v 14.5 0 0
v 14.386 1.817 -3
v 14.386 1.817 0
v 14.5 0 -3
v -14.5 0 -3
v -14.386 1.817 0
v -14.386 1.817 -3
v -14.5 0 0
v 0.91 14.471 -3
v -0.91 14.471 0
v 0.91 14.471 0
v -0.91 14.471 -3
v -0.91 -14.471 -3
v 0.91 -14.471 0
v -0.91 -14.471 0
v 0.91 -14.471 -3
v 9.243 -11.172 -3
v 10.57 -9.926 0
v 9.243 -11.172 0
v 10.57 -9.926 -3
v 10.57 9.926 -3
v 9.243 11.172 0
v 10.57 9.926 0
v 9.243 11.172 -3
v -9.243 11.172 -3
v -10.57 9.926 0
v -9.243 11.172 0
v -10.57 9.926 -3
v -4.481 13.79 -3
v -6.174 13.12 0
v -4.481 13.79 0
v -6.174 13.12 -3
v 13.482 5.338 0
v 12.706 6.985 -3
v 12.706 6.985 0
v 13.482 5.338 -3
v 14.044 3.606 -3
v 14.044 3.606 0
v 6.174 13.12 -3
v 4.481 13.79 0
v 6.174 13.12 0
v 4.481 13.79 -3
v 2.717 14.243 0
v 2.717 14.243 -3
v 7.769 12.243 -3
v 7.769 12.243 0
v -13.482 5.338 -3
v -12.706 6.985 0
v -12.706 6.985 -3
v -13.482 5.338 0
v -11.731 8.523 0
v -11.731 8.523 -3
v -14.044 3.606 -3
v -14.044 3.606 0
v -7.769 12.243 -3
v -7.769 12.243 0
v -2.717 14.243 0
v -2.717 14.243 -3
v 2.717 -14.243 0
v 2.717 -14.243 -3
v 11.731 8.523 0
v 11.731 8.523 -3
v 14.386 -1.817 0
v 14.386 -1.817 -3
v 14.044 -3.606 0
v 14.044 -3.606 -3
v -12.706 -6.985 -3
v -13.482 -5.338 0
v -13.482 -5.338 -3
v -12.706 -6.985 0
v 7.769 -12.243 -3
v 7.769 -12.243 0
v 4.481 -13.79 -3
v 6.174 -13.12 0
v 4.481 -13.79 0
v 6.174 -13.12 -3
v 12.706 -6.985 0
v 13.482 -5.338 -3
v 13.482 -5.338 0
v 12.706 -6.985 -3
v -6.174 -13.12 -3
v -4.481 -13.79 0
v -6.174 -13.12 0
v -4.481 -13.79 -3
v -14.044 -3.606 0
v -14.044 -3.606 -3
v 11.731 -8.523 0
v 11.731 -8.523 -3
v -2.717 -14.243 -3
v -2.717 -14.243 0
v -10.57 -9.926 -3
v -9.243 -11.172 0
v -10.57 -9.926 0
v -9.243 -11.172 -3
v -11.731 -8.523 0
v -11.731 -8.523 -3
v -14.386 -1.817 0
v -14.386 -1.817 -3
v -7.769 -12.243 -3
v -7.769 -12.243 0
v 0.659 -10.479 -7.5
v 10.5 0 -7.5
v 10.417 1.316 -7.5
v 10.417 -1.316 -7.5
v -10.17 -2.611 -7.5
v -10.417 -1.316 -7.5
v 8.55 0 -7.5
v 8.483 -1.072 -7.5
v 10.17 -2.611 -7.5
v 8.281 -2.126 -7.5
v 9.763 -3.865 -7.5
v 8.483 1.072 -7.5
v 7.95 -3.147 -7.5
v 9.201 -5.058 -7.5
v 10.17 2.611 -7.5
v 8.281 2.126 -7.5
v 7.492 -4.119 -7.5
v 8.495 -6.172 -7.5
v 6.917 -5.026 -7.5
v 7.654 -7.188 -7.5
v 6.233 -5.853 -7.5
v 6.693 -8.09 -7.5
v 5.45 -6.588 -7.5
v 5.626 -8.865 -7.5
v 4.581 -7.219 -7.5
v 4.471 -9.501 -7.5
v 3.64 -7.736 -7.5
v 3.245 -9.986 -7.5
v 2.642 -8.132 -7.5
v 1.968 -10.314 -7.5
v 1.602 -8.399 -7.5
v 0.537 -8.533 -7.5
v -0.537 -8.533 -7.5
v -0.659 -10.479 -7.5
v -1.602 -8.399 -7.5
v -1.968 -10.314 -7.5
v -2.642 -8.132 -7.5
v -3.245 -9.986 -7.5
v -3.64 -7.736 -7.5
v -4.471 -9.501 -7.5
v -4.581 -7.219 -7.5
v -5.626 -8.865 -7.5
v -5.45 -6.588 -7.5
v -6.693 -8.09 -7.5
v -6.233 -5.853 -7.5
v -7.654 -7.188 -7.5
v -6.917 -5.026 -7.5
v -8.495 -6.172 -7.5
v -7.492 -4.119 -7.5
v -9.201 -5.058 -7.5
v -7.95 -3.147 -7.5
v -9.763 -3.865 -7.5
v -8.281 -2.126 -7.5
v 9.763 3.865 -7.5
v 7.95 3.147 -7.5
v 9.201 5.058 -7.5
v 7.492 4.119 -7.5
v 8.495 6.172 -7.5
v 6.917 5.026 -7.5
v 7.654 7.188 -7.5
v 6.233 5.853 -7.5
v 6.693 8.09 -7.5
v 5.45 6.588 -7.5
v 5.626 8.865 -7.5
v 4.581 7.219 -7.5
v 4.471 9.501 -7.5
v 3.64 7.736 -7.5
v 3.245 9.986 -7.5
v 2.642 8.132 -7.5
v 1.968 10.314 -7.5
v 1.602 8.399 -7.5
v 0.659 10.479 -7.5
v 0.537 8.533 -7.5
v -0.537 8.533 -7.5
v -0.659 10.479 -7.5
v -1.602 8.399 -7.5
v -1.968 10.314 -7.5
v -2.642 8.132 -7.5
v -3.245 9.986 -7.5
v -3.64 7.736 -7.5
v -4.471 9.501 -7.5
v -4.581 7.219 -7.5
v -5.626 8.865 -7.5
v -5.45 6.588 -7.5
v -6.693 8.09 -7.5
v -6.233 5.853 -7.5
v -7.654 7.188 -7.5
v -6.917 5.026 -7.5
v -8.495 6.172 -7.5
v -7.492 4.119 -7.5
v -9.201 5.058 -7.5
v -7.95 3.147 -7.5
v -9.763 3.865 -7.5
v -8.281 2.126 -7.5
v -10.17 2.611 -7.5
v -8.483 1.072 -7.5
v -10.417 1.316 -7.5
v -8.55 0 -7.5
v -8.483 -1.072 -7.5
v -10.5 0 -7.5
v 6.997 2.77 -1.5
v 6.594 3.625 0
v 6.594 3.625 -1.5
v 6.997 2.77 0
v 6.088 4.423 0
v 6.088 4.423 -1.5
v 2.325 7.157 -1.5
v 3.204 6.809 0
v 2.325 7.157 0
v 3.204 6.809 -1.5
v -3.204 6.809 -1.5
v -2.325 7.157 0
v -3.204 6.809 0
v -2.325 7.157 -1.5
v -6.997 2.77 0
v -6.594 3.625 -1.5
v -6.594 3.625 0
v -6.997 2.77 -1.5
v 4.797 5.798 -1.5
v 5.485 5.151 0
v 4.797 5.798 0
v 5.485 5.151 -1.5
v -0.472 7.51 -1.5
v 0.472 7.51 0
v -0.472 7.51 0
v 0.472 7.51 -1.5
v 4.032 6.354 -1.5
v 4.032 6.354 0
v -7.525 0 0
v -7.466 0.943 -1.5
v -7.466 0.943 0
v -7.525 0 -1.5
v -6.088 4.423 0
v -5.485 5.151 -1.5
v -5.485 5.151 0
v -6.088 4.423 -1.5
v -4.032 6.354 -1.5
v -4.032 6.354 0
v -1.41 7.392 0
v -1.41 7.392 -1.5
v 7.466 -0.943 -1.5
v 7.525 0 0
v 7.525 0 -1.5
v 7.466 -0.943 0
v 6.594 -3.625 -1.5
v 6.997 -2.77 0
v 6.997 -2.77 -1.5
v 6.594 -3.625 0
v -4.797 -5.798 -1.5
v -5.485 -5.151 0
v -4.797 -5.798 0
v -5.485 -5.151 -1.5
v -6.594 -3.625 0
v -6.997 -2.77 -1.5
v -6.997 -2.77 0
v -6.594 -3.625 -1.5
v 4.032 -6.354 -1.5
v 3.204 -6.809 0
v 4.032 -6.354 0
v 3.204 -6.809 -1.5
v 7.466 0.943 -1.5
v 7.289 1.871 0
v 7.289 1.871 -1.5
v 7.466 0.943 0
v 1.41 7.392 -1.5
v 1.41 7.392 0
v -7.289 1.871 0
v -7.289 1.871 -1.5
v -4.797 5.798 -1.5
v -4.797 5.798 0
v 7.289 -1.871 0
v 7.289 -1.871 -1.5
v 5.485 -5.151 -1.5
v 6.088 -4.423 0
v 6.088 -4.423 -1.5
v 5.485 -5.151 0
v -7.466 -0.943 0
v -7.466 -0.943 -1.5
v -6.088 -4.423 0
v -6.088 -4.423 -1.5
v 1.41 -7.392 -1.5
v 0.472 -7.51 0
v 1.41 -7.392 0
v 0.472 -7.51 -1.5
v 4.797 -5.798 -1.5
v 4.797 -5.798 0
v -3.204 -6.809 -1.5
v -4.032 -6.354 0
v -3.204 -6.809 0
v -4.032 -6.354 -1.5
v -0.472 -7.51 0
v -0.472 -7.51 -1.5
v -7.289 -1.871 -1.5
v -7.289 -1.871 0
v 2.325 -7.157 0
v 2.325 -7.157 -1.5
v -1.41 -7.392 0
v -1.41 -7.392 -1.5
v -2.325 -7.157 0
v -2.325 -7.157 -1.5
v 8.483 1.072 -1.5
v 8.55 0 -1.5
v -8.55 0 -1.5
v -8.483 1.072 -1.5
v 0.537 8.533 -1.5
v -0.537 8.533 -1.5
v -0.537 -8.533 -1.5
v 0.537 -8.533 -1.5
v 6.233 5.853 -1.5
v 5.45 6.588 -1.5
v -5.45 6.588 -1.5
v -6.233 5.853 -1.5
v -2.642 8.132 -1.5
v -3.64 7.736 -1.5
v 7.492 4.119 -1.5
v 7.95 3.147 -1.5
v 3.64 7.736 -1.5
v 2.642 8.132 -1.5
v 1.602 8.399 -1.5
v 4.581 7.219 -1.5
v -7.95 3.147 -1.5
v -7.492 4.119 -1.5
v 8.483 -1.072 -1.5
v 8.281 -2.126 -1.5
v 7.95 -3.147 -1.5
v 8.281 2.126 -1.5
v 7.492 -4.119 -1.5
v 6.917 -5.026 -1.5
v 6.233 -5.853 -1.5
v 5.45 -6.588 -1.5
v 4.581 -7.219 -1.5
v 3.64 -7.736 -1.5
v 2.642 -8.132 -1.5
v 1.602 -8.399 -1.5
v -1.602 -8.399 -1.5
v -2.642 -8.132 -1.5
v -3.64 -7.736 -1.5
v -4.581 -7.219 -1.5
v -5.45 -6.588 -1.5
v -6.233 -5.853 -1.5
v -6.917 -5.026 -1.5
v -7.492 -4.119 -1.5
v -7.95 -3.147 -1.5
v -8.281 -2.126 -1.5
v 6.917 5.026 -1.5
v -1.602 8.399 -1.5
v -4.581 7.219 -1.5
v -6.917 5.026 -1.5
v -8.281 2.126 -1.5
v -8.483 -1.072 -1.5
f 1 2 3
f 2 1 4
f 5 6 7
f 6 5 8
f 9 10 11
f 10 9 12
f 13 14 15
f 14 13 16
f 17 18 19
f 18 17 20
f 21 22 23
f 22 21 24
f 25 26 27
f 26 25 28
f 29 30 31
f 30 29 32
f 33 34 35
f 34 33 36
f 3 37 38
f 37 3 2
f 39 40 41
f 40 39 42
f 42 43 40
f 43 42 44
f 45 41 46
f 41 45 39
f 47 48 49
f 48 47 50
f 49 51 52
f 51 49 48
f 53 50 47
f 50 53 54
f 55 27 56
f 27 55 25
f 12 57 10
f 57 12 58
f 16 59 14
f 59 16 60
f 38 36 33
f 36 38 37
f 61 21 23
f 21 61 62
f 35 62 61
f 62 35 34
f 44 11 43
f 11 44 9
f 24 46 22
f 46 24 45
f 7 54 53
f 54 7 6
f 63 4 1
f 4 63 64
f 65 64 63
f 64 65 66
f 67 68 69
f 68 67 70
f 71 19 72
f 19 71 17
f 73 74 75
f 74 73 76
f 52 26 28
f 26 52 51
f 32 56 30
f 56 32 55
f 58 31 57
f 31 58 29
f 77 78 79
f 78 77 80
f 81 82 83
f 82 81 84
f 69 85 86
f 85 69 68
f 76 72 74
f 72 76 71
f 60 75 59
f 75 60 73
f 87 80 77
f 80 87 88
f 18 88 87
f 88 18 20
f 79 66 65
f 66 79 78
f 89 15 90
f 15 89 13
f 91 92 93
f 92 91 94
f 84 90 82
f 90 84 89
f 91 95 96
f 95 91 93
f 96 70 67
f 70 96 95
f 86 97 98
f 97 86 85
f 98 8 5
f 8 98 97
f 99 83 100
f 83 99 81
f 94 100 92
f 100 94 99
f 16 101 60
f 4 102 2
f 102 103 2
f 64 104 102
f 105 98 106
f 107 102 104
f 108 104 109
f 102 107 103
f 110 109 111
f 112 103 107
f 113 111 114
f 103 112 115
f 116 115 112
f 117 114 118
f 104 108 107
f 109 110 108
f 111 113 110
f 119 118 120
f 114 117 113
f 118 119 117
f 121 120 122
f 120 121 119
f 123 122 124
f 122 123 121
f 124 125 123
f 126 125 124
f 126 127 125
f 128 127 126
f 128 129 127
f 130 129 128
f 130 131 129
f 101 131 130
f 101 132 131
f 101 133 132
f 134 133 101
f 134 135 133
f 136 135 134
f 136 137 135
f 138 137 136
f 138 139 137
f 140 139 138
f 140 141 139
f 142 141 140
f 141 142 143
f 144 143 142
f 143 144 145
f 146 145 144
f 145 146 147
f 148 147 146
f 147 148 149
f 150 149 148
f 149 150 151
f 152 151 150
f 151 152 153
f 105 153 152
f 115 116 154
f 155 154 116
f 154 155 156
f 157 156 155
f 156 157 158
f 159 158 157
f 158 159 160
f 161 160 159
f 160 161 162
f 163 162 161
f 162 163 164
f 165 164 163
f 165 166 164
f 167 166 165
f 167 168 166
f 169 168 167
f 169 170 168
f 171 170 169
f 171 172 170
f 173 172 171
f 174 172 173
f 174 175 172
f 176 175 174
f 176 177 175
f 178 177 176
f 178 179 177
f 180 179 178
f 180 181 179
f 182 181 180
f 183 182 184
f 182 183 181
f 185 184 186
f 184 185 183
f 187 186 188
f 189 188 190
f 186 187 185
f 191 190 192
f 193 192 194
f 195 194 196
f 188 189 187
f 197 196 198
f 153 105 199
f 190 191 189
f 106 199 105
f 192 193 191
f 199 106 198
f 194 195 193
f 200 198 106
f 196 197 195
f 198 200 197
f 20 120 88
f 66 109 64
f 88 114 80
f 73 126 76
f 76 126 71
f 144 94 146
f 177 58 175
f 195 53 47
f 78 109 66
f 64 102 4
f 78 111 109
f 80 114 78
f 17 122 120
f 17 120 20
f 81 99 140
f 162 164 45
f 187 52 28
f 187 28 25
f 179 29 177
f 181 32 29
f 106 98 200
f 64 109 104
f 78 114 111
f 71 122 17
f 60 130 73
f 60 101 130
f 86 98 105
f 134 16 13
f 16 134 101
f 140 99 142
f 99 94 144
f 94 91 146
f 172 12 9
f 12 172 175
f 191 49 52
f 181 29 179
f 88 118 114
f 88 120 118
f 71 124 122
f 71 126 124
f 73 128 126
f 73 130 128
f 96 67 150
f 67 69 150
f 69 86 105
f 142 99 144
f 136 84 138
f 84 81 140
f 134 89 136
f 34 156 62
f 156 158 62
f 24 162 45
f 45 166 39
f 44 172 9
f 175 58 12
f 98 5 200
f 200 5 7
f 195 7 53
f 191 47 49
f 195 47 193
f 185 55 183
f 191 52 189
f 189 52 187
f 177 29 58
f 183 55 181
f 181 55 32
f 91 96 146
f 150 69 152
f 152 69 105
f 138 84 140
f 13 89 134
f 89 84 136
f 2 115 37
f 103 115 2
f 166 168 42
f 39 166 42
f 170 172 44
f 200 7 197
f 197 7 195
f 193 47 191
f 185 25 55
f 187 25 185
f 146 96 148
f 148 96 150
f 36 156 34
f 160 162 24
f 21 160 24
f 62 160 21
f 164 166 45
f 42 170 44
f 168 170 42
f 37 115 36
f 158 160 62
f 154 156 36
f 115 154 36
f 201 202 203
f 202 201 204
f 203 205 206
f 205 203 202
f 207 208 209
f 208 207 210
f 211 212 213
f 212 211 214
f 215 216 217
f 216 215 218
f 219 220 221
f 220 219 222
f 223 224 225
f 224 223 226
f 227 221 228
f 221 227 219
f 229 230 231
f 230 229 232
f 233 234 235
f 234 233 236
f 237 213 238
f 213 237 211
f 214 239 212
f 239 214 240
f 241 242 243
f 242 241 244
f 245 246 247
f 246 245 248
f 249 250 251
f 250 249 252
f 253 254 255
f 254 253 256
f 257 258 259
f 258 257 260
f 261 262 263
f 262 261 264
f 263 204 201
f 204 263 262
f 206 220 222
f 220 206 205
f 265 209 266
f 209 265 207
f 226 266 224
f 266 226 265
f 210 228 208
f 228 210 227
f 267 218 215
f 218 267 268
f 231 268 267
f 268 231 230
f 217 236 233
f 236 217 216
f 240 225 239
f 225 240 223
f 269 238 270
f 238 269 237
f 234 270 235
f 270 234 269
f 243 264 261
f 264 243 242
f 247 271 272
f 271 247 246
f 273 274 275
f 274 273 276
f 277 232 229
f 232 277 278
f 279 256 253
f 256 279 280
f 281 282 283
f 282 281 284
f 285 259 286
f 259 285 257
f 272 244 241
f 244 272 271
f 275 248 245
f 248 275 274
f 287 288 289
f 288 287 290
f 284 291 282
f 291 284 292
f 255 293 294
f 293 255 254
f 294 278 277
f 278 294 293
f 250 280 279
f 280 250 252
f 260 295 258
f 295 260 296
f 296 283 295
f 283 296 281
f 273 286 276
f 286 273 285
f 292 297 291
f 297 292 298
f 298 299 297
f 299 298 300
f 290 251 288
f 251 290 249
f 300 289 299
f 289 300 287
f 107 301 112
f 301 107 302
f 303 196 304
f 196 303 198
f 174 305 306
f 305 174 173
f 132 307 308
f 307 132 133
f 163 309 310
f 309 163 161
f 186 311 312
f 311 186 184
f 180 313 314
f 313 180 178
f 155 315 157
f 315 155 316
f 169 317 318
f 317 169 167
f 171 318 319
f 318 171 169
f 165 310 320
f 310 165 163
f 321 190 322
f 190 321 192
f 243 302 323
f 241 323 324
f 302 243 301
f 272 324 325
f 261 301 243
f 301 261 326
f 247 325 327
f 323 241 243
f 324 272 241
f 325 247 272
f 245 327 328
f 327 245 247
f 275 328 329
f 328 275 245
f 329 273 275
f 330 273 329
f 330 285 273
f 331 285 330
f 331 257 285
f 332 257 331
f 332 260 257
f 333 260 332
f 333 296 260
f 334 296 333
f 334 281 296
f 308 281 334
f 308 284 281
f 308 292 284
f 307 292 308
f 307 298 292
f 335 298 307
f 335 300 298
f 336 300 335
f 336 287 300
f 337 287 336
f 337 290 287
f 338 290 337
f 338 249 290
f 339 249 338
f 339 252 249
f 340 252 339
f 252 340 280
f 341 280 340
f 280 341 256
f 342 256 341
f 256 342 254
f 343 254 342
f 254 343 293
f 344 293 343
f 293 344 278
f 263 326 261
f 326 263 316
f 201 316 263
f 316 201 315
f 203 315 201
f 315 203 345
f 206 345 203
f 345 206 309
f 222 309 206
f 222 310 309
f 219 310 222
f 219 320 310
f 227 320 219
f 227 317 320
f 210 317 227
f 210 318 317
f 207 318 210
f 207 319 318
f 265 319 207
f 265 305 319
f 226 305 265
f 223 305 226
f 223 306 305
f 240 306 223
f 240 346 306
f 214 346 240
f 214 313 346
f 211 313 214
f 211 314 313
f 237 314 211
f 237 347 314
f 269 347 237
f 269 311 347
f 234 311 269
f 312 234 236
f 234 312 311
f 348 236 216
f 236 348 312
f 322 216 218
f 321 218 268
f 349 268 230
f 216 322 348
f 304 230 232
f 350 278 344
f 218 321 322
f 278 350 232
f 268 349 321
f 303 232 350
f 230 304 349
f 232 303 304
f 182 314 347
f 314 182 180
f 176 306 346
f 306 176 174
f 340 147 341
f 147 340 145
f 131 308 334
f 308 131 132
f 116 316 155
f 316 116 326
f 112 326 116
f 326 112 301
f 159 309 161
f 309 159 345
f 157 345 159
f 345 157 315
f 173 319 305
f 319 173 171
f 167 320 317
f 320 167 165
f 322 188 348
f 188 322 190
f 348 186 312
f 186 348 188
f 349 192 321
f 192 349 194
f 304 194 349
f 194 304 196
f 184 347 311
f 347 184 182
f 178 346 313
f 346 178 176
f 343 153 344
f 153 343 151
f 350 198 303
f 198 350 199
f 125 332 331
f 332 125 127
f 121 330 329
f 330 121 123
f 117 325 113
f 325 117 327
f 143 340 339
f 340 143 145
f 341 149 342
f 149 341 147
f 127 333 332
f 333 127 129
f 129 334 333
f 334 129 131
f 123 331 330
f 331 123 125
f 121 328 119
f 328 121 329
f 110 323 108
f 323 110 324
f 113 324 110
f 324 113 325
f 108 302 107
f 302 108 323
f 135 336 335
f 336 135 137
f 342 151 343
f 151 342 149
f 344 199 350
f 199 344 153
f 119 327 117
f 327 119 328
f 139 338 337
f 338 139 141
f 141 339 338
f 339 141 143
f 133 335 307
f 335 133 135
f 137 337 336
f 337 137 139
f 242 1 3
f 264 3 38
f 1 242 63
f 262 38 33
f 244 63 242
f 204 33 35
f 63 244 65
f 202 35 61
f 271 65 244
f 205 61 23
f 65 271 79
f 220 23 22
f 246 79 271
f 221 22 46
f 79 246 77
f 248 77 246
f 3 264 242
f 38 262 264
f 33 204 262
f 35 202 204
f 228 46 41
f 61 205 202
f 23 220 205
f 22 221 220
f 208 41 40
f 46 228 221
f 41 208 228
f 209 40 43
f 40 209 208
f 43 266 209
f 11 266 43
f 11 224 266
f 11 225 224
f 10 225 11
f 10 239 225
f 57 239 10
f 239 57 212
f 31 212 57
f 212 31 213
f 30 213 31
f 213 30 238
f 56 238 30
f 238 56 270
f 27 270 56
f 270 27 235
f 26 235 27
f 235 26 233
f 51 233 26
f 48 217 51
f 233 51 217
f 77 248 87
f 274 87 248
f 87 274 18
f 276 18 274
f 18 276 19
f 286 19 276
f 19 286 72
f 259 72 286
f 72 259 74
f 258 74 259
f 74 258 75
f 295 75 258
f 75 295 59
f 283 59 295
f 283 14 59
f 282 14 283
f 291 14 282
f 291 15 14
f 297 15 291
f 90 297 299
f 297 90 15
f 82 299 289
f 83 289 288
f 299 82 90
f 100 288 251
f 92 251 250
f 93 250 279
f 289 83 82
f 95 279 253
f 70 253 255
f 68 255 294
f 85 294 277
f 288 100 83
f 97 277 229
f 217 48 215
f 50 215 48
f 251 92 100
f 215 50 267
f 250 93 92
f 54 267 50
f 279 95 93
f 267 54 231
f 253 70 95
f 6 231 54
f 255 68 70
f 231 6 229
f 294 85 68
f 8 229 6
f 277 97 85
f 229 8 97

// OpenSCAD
$fn = 50;


difference() {
	union() {
		*color(alpha = 1.0000000000, c = "gray") {
			translate(v = [0, 14, 0]) {
				linear_extrude(height = 1) {
					text(font = "Arial:style=Bold", halign = "center", size = 4.5000000000, text = "COMMENT description oobb_cylinder_shape_positive_type_6_depth_15_thickness_29_diameter_bearing_twenty_twenty_aluminium_extrusion_extra_606_bearing_true_both_holes_0_0_-7.5_pos_plate_14.5_radius", valign = "center");
				}
			}
		}
		translate(v = [0, 0, -3.0000000000]) {
			cylinder(h = 6, r = 14.5000000000);
		}
		*color(alpha = 1.0000000000, c = "gray") {
			translate(v = [0, 14, 5.2500000000]) {
				linear_extrude(height = 1) {
					text(font = "Arial:style=Bold", halign = "center", size = 4.5000000000, text = "COMMENT description oobb_cylinder_shape_positive_type_4.5_depth_0_0_5.25_pos_15_thickness_29_diameter_bearing_twenty_twenty_aluminium_extrusion_extra_606_bearing_true_both_holes_0_0_-7.5_pos_plate_14.5_r1_10.5_r2", valign = "center");
				}
			}
		}
		translate(v = [0, 0, 3.0000000000]) {
			cylinder(h = 4.5000000000, r1 = 14.5000000000, r2 = 10.5000000000);
		}
		*color(alpha = 1.0000000000, c = "gray") {
			translate(v = [0, 14, -5.2500000000]) {
				linear_extrude(height = 1) {
					text(font = "Arial:style=Bold", halign = "center", size = 4.5000000000, text = "COMMENT description oobb_cylinder_shape_positive_type_4.5_depth_0_0_-5.25_pos_15_thickness_29_diameter_bearing_twenty_twenty_aluminium_extrusion_extra_606_bearing_true_both_holes_0_0_-7.5_pos_plate_10.5_r1_14.5_r2", valign = "center");
				}
			}
		}
		translate(v = [0, 0, -7.5000000000]) {
			cylinder(h = 4.5000000000, r1 = 10.5000000000, r2 = 14.5000000000);
		}
	}
	union() {
		*color(alpha = 1.0000000000, c = "gray") {
			translate(v = [0, 14, 0]) {
				linear_extrude(height = 1) {
					text(font = "Arial:style=Bold", halign = "center", size = 4.5000000000, text = "COMMENT description oobb_hole_shape_negative_type_15_thickness_29_diameter_bearing_twenty_twenty_aluminium_extrusion_extra_606_bearing_true_both_holes_0_0_-7.5_pos_plate_5_radius", valign = "center");
				}
			}
		}
		translate(v = [0, 0, -50.0000000000]) {
			cylinder(h = 100, r = 5);
		}
		*color(alpha = 1.0000000000, c = "gray") {
			translate(v = [0, 14, 7.5000000000]) {
				linear_extrude(height = 1) {
					text(font = "Arial:style=Bold", halign = "center", size = 4.5000000000, text = "COMMENT description oobb_bearing_shape_negative_type_0_0_7.5_pos_15_thickness_29_diameter_bearing_twenty_twenty_aluminium_extrusion_extra_606_bearing_true_both_holes_0_0_-7.5_pos_plate_top_zz", valign = "center");
				}
			}
		}
		translate(v = [0, 0, 4.5000000000]) {
			translate(v = [0, 0, -3.0000000000]) {
				union() {
					difference() {
						cylinder(h = 6, r = 8.5500000000);
						cylinder(h = 6, r = 3.0000000000);
					}
					difference() {
						translate(v = [0, 0, -50]) {
							cylinder(h = 100, r = 7.5250000000);
						}
					}
				}
			}
		}
		*color(alpha = 1.0000000000, c = "gray") {
			translate(v = [0, 14, -7.5000000000]) {
				linear_extrude(height = 1) {
					text(font = "Arial:style=Bold", halign = "center", size = 4.5000000000, text = "COMMENT description oobb_bearing_shape_negative_type_0_0_-7.5_pos_15_thickness_29_diameter_bearing_twenty_twenty_aluminium_extrusion_extra_606_bearing_true_both_holes_0_0_-7.5_pos_plate_bottom_zz", valign = "center");
				}
			}
		}
		translate(v = [0, 0, -4.5000000000]) {
			translate(v = [0, 0, -3.0000000000]) {
				union() {
					difference() {
						cylinder(h = 6, r = 8.5500000000);
						cylinder(h = 6, r = 3.0000000000);
					}
					difference() {
						translate(v = [0, 0, -50]) {
							cylinder(h = 100, r = 7.5250000000);
						}
					}
				}
			}
		}
		*color(alpha = 1.0000000000, c = "gray") {
			translate(v = [0, 14, 0]) {
				linear_extrude(height = 1) {
					text(font = "Arial:style=Bold", halign = "center", size = 4.5000000000, text = "COMMENT description oobb_slice_shape_negative_type_15_thickness_29_diameter_bearing_twenty_twenty_aluminium_extrusion_extra_606_bearing_true_both_holes_0_0_-7.5_pos_plate", valign = "center");
				}
			}
		}
		translate(v = [-250, -250, 0]) {
			cube(size = [500, 500, 500]);
		}
		translate(v = [-250, -250, 0]) {
			cube(size = [500, 500, 500]);
		}
		translate(v = [-250, -250, 0]) {
			cube(size = [500, 500, 500]);
		}
	}
}
